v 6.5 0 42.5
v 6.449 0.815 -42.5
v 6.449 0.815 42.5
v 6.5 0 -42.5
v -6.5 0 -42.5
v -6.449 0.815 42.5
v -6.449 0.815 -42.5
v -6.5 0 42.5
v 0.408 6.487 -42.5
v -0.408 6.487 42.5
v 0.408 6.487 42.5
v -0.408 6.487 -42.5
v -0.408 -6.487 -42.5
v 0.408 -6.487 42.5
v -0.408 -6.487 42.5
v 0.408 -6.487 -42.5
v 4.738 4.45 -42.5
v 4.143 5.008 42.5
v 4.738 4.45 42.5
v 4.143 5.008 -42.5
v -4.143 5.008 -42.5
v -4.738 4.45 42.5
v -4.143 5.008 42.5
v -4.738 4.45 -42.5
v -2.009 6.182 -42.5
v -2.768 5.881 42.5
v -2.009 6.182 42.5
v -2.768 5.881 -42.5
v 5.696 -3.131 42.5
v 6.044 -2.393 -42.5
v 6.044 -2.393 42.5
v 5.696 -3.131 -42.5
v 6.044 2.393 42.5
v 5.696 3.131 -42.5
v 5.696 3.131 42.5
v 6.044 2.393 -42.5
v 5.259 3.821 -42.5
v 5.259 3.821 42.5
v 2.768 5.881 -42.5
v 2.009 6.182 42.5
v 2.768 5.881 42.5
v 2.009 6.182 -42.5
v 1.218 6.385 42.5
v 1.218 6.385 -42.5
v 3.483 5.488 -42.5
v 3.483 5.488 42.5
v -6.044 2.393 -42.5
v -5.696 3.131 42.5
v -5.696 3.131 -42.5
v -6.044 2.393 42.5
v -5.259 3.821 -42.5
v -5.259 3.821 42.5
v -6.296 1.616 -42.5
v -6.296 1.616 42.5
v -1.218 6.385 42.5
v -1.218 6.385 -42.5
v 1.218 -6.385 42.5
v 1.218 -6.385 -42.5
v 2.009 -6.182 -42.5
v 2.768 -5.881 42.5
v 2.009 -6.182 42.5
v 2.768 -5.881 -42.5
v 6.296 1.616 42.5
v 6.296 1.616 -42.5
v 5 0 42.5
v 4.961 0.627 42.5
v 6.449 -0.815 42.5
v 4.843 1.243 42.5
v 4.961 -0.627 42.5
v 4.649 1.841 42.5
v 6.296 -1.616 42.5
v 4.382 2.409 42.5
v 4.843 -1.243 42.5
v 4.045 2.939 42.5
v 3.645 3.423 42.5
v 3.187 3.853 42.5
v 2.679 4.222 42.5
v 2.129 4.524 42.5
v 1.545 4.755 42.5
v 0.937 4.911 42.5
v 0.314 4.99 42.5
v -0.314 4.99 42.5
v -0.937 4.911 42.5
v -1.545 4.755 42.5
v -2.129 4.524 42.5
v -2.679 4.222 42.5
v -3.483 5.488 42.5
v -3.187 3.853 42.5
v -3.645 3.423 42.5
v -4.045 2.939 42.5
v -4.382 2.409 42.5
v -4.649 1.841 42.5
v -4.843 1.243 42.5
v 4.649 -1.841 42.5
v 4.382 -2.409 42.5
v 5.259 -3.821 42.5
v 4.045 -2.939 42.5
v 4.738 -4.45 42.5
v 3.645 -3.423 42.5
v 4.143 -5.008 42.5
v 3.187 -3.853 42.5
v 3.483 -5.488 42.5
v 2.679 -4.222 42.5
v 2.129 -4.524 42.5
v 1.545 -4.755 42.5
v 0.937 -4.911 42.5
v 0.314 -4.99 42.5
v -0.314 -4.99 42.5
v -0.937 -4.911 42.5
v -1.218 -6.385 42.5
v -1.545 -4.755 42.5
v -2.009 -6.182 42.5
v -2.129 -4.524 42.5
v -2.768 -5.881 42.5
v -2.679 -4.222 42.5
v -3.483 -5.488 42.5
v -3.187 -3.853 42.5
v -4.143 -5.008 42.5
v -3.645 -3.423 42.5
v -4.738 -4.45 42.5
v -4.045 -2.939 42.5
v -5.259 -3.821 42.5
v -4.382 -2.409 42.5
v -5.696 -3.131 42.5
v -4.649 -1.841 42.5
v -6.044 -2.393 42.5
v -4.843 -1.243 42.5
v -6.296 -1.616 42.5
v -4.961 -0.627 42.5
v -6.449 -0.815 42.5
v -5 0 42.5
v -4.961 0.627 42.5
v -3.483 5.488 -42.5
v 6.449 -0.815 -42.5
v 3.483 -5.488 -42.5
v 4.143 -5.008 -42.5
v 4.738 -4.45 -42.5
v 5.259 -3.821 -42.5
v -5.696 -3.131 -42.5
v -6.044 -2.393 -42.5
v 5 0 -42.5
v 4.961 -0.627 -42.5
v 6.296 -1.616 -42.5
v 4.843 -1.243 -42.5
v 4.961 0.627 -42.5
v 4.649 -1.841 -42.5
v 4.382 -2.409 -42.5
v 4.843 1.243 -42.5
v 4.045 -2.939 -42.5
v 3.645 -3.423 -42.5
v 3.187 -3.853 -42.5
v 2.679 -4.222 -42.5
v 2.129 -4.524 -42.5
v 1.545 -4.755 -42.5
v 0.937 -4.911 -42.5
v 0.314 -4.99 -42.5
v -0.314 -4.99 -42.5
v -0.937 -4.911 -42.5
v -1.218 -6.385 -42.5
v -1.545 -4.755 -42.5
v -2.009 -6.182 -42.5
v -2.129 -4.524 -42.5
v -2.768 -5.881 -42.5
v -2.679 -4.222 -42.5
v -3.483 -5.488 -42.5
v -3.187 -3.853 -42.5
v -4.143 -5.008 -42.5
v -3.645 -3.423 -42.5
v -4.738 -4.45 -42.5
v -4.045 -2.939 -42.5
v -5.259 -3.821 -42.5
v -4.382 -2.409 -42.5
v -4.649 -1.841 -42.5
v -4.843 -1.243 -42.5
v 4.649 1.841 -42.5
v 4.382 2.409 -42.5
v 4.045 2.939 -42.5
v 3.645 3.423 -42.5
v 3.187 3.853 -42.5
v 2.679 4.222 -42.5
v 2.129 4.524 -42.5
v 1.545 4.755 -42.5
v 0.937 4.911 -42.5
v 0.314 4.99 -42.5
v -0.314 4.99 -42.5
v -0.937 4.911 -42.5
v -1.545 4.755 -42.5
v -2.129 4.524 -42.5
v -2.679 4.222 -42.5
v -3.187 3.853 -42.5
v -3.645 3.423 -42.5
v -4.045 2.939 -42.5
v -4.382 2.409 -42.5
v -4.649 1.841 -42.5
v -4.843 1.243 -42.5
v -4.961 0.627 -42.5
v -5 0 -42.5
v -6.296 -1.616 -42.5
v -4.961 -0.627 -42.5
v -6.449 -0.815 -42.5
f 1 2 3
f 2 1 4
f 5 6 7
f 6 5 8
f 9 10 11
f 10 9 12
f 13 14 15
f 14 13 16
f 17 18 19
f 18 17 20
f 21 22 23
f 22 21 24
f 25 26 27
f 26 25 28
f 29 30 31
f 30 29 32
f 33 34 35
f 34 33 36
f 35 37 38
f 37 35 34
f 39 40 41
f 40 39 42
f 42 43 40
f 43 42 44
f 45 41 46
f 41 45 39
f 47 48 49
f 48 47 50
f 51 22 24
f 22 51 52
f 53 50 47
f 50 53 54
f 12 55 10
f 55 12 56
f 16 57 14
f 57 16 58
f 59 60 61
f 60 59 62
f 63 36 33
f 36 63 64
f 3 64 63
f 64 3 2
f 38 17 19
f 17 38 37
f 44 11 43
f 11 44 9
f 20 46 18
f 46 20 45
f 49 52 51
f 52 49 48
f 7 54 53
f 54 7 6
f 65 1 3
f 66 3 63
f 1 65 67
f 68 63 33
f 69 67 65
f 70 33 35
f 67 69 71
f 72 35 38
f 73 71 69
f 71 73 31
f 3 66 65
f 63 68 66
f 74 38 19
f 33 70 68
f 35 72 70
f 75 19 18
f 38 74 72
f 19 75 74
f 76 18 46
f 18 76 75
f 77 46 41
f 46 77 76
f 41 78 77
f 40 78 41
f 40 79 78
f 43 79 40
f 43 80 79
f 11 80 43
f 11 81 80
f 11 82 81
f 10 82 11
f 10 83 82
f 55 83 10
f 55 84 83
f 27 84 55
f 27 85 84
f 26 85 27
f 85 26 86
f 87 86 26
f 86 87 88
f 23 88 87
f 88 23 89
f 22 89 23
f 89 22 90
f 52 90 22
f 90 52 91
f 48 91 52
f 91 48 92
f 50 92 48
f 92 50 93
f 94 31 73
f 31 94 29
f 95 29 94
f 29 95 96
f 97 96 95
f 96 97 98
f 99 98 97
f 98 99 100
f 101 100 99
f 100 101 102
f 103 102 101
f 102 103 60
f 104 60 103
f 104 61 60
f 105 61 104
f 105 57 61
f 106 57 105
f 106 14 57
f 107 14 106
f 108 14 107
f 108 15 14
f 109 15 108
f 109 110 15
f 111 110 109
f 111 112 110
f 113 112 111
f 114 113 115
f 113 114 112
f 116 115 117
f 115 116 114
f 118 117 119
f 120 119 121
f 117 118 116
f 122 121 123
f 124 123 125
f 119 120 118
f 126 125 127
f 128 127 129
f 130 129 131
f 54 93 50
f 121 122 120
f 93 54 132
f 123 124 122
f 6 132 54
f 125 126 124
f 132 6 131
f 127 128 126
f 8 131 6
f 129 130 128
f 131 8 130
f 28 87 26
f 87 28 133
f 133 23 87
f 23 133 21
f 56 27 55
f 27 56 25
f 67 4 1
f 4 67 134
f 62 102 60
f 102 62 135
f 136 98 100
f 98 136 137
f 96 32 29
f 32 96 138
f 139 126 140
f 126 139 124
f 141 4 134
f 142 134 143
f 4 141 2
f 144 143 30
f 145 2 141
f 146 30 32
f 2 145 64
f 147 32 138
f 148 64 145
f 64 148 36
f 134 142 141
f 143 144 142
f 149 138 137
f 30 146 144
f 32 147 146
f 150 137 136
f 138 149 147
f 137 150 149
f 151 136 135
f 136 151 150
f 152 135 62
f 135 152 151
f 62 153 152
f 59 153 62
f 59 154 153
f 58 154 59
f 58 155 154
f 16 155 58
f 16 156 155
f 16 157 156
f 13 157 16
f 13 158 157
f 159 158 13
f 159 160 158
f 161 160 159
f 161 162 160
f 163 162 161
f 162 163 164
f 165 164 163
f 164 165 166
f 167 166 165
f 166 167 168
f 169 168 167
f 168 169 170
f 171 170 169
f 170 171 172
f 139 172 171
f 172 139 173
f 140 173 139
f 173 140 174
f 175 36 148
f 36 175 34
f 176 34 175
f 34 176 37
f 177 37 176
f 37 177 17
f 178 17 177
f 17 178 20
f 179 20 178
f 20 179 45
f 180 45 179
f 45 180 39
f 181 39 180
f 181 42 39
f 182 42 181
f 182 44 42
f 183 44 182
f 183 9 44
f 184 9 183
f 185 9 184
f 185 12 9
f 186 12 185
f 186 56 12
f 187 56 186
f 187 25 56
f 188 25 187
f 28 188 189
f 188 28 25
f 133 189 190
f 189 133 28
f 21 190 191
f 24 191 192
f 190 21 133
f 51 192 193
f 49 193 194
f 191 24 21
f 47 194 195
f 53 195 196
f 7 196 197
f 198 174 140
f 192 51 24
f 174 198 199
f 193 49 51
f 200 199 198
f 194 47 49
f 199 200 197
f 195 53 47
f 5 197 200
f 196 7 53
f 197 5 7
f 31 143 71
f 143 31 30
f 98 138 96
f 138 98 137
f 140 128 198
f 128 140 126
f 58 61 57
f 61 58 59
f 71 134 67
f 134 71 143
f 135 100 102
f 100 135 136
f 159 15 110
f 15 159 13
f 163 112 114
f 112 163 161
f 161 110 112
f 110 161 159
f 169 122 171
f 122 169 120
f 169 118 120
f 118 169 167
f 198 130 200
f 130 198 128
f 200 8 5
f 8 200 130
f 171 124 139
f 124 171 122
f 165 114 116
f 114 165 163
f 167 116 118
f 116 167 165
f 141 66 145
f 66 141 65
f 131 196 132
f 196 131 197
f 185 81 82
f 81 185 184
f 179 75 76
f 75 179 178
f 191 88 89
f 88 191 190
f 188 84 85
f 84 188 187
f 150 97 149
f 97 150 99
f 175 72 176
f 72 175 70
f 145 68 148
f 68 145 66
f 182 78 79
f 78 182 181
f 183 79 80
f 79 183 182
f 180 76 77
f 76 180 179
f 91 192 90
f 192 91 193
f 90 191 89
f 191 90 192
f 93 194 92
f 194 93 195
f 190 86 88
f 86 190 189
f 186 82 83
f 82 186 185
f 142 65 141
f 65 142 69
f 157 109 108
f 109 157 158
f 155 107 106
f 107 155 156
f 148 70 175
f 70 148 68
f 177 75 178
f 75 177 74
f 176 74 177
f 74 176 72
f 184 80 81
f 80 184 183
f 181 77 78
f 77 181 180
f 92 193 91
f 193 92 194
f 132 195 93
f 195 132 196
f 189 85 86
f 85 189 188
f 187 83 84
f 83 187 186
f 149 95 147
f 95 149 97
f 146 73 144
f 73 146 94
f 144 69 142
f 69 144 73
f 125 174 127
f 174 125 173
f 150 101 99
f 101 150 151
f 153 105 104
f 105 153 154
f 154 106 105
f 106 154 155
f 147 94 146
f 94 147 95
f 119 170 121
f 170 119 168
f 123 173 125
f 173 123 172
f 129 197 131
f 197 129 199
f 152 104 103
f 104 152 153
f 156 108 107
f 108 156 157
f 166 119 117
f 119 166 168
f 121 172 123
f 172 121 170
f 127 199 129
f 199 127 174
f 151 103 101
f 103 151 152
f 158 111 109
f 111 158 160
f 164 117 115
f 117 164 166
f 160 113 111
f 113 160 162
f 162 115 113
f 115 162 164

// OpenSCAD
$fn = 50;


difference() {
	union() {
		translate(v = [0, 0, -42.5000000000]) {
			cylinder(h = 85, r = 6.5000000000);
		}
	}
	union() {
		translate(v = [0, 0, -100.0000000000]) {
			cylinder(h = 200, r = 5);
		}
	}
}
